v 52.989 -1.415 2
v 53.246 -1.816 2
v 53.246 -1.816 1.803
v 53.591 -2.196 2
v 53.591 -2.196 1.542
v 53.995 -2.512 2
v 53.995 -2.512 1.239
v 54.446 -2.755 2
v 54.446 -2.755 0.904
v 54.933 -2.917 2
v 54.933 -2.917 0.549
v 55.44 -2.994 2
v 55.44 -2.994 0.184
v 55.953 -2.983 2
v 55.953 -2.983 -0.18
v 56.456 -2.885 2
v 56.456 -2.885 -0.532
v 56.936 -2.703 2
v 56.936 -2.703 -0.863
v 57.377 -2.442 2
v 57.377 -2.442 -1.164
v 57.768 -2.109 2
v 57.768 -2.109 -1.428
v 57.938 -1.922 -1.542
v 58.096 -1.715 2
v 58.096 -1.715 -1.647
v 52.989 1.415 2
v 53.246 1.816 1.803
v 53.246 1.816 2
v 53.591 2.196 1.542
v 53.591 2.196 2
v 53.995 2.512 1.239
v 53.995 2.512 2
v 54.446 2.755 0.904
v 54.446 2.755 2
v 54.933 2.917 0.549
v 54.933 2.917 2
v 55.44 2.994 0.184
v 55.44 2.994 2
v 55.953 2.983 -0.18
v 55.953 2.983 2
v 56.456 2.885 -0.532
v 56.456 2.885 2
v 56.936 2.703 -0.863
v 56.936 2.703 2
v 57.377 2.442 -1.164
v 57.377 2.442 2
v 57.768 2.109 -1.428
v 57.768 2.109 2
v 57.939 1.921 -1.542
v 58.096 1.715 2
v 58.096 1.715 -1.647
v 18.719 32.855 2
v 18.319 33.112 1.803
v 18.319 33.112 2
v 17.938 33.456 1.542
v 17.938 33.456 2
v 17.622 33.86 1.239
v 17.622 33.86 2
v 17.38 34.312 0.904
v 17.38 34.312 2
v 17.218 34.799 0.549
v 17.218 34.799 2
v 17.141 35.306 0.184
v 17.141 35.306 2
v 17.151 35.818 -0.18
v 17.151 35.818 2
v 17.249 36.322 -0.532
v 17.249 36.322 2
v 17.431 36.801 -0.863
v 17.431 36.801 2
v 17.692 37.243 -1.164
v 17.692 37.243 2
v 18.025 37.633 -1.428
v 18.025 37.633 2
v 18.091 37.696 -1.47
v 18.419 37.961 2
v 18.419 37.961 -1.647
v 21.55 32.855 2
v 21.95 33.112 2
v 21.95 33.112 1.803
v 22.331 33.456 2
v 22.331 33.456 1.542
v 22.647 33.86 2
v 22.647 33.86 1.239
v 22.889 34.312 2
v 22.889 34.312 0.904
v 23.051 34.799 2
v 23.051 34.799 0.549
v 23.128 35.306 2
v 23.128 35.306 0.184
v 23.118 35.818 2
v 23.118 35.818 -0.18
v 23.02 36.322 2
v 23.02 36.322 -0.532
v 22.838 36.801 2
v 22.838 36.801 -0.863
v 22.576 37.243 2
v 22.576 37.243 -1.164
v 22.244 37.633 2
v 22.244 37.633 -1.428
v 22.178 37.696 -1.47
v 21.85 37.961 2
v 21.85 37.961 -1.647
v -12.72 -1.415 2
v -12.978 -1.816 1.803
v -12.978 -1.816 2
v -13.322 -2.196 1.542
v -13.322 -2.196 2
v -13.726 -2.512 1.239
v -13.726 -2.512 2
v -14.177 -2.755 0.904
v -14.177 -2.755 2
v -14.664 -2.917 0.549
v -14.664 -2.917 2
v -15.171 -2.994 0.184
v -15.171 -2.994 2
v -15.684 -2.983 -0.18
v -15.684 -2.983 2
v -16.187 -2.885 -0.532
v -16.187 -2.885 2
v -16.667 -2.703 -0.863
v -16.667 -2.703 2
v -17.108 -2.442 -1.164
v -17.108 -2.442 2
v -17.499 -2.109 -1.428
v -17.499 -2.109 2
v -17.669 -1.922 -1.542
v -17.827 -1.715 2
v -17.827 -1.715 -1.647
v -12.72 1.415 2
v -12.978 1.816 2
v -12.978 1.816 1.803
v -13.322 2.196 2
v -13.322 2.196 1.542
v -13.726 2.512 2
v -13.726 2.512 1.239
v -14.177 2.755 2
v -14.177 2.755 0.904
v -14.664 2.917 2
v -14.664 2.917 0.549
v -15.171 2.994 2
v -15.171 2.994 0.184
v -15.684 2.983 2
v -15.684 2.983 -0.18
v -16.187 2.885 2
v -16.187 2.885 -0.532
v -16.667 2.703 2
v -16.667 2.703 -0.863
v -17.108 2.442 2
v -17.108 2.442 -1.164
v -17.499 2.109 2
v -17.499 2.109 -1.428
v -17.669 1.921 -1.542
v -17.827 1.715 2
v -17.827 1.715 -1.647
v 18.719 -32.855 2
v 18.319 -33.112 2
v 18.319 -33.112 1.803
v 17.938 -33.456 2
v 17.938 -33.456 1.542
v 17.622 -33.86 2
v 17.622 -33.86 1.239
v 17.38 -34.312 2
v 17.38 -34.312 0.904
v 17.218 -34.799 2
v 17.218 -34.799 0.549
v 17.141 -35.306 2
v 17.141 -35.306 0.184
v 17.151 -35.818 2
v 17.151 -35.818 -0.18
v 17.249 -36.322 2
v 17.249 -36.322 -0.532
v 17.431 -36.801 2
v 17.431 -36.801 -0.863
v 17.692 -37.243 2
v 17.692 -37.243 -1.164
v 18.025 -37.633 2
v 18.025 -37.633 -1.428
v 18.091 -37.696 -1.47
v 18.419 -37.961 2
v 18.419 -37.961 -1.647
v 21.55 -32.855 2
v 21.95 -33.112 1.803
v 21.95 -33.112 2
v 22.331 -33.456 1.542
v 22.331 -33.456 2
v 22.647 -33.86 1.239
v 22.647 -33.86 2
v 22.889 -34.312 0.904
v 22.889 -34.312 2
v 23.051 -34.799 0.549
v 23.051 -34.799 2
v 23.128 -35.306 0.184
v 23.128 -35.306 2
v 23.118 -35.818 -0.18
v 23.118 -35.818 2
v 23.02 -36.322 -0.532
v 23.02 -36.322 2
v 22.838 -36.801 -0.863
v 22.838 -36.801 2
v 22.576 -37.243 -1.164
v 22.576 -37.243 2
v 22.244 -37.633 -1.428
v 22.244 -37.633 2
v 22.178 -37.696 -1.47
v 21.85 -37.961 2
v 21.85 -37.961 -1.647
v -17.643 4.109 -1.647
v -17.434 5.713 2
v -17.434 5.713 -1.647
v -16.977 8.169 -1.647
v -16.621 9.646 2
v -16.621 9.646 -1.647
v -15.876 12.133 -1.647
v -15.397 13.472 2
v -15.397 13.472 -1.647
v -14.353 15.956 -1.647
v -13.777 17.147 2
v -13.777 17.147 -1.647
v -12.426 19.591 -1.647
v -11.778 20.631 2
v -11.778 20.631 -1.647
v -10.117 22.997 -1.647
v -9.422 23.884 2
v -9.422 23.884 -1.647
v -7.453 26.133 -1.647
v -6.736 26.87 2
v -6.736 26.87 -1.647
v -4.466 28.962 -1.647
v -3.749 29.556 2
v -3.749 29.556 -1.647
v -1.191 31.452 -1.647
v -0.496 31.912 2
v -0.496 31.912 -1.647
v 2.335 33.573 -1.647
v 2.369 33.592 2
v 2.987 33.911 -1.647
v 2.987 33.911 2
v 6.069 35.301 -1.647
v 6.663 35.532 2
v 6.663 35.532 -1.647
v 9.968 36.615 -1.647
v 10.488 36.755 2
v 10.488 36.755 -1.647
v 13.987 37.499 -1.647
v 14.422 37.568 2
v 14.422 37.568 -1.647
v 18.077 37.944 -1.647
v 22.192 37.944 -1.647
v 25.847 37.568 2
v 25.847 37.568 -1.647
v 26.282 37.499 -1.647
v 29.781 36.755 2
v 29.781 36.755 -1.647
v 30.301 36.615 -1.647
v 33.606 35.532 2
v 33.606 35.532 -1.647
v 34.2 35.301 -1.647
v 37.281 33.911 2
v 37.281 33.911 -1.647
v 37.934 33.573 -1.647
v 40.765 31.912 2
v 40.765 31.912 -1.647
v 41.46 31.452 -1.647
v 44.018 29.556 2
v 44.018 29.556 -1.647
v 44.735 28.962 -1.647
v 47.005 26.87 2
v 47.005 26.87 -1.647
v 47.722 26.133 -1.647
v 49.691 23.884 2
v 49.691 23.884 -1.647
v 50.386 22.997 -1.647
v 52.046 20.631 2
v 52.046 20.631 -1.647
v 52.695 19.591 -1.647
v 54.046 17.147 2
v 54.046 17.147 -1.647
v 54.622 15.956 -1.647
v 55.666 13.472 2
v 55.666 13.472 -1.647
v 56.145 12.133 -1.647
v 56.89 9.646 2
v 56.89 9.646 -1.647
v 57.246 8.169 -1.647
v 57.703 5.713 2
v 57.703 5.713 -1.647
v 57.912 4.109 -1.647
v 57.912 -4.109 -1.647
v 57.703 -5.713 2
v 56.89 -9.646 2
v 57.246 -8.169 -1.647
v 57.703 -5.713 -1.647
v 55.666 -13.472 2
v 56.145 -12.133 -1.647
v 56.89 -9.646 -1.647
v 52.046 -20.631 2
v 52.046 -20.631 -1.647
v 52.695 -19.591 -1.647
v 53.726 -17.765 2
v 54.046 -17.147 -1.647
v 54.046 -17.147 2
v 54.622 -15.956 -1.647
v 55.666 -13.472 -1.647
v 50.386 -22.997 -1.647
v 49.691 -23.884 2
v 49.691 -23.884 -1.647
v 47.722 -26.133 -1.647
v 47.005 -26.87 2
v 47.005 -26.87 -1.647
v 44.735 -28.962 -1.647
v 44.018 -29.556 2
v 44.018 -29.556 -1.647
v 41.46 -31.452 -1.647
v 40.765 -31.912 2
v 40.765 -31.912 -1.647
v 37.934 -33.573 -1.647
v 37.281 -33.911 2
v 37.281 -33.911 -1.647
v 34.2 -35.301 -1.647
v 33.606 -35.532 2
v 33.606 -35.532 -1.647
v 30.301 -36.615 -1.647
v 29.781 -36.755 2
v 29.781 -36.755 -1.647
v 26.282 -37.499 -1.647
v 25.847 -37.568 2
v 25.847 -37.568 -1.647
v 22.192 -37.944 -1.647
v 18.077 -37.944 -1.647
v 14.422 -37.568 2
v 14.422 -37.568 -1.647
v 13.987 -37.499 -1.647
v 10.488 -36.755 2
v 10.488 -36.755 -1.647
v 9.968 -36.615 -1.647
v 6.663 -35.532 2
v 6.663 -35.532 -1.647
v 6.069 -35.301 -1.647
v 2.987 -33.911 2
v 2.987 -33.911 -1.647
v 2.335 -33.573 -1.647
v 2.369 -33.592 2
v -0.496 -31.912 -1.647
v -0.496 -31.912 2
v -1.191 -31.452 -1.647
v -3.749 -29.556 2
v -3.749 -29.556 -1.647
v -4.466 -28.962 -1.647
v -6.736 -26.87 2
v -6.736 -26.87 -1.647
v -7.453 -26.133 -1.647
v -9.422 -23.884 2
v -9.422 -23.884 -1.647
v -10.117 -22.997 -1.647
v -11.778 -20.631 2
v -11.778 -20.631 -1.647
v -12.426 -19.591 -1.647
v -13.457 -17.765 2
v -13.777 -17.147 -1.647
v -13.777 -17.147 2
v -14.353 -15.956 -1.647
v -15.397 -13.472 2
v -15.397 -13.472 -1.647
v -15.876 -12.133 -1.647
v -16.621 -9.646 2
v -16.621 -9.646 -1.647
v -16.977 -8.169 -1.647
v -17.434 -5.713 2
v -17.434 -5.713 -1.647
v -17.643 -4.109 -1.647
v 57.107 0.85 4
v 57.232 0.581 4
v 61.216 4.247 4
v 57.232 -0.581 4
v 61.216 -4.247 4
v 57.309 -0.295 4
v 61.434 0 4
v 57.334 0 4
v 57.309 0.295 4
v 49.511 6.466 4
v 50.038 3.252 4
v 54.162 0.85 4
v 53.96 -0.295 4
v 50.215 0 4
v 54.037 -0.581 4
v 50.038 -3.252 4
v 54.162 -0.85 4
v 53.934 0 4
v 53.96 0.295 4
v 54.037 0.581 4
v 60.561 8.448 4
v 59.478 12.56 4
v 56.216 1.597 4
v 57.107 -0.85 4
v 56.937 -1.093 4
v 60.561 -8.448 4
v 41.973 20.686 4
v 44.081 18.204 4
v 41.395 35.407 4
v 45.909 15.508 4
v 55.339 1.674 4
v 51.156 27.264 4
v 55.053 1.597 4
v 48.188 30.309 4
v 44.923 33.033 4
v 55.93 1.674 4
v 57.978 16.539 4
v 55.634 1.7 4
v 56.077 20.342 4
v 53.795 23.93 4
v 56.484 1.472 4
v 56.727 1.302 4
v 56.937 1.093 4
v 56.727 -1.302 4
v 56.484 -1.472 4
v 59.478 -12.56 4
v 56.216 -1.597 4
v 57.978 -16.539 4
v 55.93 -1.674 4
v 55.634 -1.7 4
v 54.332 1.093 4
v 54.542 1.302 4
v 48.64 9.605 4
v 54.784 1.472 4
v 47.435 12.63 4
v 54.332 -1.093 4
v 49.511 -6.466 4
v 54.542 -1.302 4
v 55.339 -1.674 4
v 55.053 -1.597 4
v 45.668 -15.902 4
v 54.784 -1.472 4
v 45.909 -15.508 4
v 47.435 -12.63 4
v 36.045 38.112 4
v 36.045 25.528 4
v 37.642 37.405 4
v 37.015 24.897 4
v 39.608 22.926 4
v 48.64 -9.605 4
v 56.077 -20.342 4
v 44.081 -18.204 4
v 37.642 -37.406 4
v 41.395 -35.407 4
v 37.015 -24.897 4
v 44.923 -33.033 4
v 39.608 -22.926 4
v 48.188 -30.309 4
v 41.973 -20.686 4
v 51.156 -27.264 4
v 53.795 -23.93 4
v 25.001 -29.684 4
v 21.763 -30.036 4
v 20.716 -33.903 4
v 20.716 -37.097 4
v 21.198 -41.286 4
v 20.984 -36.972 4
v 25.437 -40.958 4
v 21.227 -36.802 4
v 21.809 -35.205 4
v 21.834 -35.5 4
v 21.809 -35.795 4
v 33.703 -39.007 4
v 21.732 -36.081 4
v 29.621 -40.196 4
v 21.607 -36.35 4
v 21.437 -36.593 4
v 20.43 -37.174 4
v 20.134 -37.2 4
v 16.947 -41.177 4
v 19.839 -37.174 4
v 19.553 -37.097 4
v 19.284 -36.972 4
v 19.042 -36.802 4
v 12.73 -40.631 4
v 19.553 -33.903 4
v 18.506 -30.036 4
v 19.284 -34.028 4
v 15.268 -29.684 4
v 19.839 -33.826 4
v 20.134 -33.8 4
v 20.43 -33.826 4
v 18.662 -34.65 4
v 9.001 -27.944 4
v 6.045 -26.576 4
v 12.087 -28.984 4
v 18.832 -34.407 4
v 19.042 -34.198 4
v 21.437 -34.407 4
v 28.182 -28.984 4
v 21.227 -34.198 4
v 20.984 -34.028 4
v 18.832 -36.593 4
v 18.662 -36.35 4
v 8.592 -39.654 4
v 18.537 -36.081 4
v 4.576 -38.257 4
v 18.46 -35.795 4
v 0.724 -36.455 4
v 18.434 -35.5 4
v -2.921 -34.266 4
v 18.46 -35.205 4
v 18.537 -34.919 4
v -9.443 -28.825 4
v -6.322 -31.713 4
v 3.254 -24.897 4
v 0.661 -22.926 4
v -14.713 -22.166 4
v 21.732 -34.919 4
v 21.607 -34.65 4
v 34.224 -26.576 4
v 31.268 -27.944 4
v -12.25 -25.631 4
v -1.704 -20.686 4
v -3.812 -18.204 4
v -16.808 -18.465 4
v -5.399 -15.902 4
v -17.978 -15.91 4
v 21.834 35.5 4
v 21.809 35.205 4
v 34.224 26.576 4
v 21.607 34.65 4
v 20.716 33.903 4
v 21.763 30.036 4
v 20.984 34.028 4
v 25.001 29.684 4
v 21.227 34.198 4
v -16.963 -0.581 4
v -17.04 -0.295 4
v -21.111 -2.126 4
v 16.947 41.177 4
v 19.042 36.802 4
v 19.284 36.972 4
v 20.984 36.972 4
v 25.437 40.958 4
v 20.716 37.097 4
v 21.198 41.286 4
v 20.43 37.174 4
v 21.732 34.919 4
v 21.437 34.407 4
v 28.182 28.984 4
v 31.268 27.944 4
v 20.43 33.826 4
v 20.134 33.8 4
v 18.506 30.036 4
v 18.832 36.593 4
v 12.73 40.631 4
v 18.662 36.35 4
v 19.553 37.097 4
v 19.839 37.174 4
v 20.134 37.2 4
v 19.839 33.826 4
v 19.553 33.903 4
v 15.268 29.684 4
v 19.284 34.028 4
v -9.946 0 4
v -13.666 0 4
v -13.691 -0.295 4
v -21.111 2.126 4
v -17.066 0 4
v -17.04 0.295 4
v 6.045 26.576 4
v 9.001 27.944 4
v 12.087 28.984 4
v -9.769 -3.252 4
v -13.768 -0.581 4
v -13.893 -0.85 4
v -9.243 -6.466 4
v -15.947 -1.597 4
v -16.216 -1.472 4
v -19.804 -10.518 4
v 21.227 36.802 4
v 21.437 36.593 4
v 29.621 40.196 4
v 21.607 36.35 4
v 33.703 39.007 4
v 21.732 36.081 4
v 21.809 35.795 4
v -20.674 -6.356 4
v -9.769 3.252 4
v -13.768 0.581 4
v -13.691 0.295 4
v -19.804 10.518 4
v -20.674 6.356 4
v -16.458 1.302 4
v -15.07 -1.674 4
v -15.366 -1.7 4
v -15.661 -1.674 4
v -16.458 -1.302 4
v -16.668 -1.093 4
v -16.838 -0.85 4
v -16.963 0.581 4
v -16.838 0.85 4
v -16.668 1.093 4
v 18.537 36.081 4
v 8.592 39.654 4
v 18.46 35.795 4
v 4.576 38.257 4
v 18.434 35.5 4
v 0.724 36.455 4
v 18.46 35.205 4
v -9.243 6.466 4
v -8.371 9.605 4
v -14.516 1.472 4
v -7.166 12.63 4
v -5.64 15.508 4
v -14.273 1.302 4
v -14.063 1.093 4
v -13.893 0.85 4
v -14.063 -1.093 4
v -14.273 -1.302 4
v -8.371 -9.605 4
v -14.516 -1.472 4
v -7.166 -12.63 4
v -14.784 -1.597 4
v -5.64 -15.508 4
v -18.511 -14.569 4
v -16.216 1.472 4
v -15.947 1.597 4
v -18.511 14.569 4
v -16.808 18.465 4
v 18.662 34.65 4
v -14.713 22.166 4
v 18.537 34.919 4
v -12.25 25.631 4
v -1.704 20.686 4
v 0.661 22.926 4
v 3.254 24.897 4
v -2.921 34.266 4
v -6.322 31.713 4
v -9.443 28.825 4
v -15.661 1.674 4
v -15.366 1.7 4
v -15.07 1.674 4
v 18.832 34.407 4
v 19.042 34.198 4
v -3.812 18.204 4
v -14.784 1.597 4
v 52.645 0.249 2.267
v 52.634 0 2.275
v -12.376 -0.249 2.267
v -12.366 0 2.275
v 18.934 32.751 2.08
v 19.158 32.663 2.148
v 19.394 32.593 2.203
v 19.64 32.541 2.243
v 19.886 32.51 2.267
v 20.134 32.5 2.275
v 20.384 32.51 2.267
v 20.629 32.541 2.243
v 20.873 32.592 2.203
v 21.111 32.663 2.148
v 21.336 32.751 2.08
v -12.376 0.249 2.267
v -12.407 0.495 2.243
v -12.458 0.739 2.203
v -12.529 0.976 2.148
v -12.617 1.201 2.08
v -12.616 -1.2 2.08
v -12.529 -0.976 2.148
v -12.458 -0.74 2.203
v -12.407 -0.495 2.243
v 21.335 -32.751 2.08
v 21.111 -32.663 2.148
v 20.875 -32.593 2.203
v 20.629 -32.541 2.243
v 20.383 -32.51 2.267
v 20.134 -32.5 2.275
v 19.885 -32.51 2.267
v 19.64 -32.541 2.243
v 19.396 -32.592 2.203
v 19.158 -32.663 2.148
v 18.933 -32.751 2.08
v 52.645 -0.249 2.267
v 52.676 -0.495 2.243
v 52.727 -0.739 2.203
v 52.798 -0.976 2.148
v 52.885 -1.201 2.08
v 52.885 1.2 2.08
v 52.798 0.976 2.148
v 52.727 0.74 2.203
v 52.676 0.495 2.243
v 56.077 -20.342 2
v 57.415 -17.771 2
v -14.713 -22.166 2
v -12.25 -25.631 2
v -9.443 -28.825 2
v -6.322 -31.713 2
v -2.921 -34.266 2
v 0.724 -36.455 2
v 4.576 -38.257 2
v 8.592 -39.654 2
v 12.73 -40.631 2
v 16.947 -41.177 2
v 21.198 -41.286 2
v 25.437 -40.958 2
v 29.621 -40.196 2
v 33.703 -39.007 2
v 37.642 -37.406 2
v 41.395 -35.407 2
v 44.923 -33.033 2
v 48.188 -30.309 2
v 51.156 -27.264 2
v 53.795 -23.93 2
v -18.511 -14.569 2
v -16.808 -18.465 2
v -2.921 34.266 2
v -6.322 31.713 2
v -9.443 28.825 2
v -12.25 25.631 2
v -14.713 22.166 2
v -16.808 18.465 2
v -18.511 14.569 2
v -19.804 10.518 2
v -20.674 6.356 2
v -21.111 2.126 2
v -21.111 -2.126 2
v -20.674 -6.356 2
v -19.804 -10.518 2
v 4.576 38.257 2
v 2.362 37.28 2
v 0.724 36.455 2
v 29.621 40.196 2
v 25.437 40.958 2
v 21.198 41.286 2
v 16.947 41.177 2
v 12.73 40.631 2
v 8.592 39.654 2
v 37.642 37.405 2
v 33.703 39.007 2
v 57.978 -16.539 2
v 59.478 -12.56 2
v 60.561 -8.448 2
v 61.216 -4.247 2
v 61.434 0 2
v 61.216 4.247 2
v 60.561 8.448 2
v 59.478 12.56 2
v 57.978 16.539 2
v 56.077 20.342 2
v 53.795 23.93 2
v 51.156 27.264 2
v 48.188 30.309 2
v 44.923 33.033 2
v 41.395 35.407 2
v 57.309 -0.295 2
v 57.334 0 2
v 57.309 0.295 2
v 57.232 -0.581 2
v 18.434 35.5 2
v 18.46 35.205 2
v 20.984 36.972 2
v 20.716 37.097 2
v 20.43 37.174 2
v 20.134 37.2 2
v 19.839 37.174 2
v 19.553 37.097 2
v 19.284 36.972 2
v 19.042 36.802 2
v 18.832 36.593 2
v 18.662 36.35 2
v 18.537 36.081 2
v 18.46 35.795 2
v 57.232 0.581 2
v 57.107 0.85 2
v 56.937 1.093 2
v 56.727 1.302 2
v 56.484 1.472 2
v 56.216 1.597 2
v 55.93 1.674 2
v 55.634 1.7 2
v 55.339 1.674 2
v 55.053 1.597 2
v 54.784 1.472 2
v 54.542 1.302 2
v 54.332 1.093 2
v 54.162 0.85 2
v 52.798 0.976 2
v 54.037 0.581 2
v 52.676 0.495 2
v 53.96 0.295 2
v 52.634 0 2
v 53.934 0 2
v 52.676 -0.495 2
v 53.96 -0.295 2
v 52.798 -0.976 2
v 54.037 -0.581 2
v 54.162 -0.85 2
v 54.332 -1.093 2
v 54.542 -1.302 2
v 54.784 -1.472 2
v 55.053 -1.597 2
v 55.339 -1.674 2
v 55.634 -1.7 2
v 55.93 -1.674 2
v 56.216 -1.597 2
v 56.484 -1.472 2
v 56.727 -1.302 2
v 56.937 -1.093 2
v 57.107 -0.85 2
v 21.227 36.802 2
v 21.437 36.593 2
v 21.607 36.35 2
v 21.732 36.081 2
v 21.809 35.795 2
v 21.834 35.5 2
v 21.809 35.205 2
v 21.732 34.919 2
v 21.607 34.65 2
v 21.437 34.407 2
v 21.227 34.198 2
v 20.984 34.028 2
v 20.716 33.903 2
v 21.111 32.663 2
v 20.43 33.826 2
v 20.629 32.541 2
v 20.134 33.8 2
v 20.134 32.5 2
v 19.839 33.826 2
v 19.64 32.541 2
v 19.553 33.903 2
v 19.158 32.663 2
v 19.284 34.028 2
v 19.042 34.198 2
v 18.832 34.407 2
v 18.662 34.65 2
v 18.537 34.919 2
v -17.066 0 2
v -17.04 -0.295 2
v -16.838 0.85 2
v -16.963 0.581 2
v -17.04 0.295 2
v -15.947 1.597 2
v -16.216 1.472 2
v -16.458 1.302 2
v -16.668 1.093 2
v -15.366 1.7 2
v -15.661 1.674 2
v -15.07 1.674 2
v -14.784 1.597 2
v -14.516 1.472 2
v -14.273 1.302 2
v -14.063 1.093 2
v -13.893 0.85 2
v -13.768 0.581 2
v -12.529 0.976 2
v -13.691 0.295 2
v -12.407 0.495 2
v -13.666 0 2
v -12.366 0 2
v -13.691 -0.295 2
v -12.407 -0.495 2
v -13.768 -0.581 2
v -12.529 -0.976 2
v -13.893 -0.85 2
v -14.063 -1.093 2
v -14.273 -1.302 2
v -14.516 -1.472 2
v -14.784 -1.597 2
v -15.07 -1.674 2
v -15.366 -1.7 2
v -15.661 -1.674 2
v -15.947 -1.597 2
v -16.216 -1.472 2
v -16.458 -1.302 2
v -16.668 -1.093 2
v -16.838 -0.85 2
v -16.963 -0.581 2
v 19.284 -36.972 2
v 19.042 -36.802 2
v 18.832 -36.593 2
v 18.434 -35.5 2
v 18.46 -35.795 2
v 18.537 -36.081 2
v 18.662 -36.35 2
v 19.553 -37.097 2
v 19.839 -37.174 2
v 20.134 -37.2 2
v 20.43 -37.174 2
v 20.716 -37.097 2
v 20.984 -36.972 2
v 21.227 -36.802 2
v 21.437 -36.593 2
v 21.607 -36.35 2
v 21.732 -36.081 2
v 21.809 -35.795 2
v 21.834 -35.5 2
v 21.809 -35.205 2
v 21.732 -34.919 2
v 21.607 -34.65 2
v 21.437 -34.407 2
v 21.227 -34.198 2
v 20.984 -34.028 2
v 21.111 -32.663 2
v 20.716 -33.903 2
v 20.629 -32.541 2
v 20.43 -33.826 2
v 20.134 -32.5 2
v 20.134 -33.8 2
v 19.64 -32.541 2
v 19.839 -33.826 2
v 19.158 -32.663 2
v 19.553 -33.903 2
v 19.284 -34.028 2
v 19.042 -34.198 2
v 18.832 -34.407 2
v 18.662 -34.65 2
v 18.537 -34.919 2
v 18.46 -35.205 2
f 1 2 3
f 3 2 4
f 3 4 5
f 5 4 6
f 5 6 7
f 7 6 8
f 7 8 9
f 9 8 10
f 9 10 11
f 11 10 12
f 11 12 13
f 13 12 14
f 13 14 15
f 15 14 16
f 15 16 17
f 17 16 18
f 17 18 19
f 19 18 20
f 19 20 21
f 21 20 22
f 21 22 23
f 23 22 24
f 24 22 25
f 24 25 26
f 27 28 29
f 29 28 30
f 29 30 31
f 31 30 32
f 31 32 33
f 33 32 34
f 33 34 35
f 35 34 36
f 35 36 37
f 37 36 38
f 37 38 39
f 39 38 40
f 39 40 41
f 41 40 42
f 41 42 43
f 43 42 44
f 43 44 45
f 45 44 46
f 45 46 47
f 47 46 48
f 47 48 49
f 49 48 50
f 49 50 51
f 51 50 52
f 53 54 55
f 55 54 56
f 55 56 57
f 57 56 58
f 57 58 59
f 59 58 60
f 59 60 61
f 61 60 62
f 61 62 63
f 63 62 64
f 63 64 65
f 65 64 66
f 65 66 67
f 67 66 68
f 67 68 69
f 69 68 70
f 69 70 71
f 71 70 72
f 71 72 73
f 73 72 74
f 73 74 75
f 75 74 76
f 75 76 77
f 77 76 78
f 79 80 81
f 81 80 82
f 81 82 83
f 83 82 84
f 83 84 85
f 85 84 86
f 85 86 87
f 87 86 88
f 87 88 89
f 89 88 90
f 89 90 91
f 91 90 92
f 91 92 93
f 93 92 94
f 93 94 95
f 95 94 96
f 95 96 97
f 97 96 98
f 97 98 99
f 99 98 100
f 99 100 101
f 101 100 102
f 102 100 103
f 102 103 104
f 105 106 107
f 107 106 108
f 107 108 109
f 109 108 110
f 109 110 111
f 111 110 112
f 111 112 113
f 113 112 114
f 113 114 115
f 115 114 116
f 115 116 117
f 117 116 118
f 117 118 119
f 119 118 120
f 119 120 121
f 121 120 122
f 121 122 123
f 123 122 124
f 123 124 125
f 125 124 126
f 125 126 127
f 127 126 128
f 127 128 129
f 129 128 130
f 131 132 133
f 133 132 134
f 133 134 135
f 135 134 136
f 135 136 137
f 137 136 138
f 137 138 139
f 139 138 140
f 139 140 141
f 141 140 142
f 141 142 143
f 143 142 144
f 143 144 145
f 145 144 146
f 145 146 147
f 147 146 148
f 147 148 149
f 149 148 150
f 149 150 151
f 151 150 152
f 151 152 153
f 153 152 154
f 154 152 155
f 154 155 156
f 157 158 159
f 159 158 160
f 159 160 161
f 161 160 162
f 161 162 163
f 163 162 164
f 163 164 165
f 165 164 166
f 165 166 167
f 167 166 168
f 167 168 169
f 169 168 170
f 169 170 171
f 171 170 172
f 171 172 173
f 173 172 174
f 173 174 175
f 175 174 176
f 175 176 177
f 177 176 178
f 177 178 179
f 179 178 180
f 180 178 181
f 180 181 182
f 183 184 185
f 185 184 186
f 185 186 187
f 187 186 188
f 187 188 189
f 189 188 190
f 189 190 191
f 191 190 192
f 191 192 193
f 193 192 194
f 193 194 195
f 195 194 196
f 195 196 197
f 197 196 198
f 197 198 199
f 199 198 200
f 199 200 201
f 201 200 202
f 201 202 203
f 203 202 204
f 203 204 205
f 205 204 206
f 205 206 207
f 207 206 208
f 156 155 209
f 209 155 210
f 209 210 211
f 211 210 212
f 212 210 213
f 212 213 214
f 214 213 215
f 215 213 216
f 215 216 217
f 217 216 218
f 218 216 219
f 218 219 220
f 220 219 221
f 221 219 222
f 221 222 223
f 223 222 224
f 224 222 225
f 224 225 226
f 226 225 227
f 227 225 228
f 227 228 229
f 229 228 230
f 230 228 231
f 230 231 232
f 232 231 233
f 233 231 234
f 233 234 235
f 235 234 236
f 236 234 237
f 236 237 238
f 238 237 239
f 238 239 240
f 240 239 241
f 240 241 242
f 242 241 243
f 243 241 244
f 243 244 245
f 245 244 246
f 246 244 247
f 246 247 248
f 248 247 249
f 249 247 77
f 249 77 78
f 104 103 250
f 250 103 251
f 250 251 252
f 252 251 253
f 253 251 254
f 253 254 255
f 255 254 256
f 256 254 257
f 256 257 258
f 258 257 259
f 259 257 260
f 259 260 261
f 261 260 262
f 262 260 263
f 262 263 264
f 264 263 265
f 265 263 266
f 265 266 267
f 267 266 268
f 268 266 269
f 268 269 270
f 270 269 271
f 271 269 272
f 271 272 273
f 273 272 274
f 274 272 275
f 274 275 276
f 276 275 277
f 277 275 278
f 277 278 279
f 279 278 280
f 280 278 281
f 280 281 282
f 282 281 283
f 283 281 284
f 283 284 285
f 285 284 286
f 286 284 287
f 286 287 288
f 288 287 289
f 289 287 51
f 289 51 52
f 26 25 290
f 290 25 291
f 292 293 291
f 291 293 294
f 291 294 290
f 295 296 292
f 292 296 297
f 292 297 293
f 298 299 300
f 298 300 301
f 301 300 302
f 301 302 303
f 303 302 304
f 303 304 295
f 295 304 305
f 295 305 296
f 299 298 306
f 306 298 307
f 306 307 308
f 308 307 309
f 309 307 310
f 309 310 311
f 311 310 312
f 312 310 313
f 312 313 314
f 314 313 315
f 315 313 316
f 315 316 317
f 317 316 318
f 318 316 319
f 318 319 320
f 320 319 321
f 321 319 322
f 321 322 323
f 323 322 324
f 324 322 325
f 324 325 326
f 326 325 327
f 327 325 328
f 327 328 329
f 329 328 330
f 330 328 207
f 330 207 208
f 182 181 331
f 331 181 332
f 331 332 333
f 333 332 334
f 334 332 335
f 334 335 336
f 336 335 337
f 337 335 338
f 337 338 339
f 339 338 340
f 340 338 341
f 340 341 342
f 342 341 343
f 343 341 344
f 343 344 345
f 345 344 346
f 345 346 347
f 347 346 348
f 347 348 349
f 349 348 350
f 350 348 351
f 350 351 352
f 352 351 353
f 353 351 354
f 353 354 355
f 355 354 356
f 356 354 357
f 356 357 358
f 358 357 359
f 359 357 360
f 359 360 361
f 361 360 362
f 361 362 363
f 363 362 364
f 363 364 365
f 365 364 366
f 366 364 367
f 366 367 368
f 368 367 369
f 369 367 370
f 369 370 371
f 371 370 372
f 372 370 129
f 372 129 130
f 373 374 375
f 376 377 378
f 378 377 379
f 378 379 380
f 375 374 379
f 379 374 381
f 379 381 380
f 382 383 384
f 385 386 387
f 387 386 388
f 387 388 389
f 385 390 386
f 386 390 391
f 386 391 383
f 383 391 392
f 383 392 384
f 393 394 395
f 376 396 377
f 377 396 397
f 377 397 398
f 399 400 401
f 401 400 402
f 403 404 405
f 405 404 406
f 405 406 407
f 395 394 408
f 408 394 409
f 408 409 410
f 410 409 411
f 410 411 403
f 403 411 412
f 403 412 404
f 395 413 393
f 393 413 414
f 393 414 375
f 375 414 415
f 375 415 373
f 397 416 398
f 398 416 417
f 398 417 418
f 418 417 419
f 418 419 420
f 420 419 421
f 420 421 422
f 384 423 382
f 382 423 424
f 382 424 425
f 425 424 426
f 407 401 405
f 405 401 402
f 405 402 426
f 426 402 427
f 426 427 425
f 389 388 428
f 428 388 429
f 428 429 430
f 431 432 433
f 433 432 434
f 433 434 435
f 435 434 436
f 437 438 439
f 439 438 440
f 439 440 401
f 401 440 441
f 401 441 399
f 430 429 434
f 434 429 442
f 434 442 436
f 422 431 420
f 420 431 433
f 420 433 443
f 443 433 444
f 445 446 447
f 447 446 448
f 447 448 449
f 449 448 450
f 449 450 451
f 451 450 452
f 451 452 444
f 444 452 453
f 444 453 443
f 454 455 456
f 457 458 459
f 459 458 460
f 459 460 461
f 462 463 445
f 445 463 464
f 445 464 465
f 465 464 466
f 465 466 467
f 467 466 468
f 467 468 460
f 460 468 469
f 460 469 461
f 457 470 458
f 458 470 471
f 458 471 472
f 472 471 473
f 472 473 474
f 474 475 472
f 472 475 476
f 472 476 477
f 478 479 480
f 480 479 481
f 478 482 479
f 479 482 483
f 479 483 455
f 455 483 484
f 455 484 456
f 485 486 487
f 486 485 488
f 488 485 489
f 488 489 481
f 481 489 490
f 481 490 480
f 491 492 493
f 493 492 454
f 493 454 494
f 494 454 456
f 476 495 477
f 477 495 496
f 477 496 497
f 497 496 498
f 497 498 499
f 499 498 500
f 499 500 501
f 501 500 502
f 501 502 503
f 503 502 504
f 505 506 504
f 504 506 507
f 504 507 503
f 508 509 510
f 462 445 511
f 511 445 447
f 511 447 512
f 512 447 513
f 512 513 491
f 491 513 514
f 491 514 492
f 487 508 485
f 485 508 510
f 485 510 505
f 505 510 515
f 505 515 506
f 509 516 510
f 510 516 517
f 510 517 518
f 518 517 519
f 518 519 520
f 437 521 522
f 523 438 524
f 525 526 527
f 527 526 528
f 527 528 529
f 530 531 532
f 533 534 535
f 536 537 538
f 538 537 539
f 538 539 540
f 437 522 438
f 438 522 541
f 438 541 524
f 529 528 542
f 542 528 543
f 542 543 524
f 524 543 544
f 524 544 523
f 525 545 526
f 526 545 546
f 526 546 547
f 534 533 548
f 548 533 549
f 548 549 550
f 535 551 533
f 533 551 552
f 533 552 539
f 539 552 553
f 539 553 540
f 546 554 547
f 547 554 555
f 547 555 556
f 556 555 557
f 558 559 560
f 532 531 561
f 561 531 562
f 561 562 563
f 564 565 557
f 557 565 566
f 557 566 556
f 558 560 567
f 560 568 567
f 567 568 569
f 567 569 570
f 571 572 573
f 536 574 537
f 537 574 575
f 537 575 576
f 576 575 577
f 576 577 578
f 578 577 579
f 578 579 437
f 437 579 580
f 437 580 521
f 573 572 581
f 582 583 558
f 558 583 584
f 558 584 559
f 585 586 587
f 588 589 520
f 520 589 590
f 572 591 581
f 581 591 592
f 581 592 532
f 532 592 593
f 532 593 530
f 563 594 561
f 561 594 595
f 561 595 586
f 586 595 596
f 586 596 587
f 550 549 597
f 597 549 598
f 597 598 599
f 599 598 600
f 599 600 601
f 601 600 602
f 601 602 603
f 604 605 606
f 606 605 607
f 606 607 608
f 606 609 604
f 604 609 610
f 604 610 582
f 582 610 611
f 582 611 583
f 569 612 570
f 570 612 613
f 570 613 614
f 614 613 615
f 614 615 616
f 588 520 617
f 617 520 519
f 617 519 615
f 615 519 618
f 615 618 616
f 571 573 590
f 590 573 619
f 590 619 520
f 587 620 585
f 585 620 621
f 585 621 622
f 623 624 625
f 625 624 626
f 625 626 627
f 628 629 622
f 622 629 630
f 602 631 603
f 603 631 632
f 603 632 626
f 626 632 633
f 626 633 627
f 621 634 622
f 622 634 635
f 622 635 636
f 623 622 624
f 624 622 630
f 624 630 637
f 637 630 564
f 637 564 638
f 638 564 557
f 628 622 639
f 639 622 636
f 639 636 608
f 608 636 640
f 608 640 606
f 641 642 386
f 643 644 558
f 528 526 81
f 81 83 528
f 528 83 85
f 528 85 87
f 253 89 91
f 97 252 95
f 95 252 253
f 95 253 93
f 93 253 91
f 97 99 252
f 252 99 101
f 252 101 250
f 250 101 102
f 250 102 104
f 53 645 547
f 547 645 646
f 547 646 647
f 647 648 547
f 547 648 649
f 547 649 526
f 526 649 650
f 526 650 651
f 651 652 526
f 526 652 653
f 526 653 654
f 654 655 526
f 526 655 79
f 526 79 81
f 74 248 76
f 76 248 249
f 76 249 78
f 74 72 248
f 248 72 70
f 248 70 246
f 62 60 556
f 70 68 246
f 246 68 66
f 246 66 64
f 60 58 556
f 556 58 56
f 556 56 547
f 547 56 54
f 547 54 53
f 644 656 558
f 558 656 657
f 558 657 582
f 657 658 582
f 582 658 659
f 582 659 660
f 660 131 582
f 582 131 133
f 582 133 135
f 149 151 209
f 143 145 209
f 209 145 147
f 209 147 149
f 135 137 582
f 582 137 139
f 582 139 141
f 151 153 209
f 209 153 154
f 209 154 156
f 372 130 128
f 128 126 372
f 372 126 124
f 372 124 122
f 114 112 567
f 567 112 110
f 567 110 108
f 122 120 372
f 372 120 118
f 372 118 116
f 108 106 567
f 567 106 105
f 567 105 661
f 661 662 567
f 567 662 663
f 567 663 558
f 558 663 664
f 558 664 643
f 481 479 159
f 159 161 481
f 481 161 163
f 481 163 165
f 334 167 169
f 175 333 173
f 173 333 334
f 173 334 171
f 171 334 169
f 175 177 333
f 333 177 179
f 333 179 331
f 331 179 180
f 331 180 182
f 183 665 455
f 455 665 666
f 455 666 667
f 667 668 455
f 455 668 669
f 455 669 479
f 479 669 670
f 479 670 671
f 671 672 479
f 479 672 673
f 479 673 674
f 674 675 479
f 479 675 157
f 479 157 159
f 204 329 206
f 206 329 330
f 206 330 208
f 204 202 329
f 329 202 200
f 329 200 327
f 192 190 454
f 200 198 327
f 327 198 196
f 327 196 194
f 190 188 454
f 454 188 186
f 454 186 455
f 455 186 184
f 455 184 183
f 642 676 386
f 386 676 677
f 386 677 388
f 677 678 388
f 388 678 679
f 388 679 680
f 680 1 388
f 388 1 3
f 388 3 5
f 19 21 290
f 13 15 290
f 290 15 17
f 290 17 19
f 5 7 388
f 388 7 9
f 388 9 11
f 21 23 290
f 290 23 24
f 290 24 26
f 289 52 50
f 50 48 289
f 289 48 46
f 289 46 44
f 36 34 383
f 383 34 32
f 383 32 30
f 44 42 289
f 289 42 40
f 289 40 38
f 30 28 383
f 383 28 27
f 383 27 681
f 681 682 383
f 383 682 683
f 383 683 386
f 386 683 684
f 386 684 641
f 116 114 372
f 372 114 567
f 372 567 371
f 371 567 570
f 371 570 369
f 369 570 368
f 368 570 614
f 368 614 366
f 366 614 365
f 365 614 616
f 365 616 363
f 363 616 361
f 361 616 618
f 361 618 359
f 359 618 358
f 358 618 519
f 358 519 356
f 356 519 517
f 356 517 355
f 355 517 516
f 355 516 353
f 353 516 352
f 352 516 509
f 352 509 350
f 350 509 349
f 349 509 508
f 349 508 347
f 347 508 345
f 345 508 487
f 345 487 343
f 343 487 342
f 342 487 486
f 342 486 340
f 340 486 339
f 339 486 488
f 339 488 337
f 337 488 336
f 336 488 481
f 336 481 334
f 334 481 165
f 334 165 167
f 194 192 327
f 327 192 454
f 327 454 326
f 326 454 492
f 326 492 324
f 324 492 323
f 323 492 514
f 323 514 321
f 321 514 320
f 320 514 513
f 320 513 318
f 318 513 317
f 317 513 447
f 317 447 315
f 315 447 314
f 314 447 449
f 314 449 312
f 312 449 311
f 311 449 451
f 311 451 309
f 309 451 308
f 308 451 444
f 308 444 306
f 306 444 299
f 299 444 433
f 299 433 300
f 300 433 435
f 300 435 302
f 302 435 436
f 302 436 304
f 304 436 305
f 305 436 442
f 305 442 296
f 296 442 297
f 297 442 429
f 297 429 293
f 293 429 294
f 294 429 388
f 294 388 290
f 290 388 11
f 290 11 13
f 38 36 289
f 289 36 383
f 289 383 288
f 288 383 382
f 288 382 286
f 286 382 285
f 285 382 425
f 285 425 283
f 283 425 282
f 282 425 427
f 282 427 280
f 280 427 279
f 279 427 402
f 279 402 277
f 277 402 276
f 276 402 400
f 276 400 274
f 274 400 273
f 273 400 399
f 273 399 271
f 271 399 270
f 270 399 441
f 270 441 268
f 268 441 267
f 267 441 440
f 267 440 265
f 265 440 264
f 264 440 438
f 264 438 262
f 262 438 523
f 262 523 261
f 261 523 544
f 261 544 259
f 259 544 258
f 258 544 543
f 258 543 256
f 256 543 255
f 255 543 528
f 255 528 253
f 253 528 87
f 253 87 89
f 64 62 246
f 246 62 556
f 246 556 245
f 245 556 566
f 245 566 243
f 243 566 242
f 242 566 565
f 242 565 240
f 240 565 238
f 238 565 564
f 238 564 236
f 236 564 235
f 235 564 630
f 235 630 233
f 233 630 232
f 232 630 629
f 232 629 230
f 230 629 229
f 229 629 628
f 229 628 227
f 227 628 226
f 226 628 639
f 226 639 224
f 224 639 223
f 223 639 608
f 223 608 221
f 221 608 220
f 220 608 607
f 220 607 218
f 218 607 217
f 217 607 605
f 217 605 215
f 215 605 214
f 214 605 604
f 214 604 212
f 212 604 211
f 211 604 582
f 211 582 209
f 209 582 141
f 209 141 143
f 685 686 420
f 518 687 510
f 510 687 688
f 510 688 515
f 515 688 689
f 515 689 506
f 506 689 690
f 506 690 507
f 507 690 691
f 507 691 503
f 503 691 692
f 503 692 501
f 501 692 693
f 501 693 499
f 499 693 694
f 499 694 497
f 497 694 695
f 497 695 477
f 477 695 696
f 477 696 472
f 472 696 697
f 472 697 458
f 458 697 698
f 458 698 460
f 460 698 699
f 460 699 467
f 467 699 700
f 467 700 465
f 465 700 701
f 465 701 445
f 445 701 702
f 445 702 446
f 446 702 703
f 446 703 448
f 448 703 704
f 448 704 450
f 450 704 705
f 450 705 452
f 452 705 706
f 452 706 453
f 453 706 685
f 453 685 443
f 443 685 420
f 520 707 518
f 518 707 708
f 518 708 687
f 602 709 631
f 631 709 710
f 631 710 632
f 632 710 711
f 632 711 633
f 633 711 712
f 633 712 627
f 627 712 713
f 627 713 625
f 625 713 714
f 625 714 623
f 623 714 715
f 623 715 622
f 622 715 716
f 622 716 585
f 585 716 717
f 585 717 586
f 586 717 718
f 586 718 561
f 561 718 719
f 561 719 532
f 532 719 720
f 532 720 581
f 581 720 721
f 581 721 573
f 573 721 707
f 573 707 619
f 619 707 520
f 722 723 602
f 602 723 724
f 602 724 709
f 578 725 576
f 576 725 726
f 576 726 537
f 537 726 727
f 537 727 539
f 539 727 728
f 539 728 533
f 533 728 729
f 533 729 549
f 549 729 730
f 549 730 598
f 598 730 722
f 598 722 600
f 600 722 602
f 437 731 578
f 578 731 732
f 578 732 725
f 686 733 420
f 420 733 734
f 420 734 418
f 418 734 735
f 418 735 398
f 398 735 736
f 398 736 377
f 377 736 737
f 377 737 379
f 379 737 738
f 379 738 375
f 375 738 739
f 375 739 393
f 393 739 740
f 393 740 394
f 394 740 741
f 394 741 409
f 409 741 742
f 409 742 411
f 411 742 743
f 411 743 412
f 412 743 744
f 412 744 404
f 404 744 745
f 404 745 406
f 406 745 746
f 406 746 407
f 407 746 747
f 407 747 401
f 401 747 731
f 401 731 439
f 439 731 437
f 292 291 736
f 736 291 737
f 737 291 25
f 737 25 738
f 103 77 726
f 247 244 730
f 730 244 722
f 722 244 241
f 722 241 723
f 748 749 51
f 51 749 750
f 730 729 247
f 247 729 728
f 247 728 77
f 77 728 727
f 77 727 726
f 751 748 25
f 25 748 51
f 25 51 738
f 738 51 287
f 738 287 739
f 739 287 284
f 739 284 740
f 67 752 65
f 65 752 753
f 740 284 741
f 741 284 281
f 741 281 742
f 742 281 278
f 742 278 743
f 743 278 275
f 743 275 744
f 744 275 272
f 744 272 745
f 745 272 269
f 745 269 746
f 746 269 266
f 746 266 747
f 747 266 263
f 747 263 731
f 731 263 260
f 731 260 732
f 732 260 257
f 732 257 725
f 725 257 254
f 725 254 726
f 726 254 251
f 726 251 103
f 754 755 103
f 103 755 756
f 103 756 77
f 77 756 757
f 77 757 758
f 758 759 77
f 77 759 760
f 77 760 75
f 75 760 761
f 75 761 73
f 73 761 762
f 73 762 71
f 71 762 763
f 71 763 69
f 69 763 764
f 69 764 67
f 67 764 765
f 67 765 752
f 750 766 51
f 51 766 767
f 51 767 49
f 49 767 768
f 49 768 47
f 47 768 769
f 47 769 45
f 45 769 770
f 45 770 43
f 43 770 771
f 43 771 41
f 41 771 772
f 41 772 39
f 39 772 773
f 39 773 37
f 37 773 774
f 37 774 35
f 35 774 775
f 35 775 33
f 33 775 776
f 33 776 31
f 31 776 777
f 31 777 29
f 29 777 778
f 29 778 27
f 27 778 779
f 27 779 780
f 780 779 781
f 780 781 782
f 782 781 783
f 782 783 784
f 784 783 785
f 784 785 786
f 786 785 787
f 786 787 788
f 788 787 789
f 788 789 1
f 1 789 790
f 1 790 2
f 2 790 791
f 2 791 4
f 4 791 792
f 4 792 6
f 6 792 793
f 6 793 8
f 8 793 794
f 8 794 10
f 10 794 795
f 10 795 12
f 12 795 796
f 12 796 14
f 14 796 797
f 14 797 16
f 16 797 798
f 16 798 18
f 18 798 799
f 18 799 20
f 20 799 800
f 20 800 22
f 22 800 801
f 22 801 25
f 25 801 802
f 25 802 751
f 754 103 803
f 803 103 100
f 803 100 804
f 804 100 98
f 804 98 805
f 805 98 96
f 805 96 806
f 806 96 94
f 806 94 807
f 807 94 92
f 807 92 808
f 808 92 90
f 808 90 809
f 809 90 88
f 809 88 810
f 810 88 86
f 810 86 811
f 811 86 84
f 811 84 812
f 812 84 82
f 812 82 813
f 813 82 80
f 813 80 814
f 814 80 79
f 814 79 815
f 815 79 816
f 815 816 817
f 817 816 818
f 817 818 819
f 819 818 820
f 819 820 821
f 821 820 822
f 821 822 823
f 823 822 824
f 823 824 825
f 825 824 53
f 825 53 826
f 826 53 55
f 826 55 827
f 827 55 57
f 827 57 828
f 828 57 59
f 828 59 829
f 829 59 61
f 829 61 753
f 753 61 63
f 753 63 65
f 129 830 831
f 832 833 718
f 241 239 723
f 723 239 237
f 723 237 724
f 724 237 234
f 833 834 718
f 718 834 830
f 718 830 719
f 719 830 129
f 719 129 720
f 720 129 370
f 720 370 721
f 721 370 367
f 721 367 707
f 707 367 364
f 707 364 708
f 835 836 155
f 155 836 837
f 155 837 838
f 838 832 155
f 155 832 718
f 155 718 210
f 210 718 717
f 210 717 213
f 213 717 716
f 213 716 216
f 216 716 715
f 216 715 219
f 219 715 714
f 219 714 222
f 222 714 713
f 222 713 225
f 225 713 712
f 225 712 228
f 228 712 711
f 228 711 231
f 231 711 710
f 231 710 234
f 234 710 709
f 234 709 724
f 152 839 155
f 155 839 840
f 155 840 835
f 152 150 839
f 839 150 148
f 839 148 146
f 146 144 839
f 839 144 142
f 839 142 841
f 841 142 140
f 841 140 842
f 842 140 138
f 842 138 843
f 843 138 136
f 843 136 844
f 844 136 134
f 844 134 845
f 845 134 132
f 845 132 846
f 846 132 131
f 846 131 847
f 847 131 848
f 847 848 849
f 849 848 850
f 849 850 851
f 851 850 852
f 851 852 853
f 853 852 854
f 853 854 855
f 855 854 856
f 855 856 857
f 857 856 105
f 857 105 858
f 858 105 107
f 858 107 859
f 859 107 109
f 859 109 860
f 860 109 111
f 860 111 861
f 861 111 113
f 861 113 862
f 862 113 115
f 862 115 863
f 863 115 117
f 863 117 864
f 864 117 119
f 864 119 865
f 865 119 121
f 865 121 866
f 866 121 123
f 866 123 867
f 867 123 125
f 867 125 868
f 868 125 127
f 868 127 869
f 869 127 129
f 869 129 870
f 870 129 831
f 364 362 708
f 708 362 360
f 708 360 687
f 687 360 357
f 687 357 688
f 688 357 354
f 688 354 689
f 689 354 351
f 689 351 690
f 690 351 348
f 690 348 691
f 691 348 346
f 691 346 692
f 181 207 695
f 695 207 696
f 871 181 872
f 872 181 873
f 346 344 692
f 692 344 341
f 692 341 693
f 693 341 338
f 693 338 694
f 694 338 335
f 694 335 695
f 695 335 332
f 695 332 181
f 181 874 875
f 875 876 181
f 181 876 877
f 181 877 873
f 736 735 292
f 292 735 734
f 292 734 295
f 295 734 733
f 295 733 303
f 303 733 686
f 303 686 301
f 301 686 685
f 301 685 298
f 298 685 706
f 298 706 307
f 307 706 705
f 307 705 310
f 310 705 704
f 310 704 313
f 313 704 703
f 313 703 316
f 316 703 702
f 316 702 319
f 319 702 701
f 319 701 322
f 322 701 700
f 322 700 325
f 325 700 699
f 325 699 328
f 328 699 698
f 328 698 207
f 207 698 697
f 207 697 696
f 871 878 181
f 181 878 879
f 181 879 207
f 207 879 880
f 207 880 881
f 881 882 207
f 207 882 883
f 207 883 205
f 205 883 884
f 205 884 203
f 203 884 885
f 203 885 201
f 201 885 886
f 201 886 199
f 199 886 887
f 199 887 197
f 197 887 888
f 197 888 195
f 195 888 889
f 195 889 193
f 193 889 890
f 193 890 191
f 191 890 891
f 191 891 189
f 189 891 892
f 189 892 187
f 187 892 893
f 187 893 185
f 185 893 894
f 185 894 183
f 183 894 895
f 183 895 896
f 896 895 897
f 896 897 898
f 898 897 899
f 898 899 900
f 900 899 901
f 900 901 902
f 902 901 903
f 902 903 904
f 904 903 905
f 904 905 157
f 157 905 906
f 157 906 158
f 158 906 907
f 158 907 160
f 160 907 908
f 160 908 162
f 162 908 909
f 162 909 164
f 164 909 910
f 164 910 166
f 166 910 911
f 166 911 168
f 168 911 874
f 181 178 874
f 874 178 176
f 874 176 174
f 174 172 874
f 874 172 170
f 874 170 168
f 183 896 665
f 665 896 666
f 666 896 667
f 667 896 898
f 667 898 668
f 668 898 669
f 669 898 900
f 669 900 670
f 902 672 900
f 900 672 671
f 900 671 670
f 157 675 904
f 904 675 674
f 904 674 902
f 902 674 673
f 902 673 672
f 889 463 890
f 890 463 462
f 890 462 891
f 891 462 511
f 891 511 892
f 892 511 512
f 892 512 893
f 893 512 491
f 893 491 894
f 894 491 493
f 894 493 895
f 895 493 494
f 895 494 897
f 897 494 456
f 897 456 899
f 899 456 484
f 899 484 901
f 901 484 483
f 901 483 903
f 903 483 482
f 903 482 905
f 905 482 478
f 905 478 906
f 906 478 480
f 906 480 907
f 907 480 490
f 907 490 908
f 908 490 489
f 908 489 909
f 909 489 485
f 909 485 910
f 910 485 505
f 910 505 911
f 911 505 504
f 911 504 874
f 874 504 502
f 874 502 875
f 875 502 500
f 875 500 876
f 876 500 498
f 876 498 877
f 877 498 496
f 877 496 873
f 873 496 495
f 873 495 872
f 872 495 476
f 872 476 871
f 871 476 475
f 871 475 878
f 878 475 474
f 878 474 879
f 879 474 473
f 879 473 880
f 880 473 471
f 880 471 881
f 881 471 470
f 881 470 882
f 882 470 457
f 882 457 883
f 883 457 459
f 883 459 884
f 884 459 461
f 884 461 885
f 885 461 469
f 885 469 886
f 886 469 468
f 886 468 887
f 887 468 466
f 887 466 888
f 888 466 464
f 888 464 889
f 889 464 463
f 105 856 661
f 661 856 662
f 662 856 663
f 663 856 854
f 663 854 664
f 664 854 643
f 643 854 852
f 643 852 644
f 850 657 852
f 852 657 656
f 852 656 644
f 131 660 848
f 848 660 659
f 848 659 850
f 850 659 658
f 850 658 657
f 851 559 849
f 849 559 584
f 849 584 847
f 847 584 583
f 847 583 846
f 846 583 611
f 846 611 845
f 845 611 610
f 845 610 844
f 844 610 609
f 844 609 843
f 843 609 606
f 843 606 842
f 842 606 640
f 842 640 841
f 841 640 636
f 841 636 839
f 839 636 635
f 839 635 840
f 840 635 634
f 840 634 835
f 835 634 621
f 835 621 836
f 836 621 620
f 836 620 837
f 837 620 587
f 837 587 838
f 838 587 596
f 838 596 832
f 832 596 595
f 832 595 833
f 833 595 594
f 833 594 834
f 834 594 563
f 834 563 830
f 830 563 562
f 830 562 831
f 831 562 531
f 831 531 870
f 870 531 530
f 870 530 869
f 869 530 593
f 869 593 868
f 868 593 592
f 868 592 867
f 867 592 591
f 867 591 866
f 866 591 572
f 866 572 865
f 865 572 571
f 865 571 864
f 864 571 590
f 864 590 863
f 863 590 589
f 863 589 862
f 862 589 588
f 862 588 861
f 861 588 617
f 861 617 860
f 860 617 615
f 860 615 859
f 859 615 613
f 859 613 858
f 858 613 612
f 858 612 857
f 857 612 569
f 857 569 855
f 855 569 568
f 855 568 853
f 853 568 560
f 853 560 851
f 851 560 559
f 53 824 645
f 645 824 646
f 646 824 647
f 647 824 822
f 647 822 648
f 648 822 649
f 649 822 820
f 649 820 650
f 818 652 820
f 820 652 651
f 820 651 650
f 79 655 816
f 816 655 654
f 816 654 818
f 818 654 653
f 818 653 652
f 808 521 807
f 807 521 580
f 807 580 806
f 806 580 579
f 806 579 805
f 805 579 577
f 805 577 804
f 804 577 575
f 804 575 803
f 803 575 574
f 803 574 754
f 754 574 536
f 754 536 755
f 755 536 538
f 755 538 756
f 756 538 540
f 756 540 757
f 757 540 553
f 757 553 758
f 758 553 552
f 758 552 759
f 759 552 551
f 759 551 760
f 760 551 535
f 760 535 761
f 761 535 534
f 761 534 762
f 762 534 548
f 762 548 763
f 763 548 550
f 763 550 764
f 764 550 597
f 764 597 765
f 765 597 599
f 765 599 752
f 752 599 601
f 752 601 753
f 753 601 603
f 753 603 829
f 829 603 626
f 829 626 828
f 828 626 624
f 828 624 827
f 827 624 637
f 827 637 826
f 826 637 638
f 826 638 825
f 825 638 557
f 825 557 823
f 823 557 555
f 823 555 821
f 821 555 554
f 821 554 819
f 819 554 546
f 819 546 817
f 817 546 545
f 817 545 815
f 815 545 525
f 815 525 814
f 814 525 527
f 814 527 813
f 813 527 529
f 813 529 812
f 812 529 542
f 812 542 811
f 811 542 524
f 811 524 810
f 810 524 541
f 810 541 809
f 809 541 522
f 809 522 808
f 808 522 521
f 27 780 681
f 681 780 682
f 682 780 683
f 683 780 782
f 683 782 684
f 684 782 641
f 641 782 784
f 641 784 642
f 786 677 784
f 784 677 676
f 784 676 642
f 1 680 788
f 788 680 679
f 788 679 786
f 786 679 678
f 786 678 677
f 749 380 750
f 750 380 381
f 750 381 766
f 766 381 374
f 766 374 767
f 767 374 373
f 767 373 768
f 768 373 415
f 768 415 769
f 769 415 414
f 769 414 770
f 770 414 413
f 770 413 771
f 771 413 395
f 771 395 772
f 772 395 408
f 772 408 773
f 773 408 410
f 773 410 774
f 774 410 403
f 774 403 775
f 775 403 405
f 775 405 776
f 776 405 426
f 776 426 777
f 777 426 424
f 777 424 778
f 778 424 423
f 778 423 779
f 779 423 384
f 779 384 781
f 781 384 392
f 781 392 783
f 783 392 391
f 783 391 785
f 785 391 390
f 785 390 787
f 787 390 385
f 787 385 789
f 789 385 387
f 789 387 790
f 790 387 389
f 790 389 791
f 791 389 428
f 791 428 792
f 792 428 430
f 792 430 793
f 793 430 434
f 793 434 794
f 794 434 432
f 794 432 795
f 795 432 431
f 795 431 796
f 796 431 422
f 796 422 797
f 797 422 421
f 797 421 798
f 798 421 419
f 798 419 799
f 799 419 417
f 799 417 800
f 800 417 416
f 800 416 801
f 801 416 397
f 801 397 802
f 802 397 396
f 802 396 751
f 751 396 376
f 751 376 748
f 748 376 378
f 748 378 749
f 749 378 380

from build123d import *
from build123d.topology import SkipClean

# Parameters (mm, degrees)
SKETCH3_R           = 3
CUT_EXTRUDE1_DEPTH  = 75.457245764
SKETCH4_R           = 41.3
CUT_EXTRUDE2_DEPTH  = 10
SKETCH4_3_R         = 41.3
BOSS_EXTRUDE1_DEPTH = 2
SKETCH5_R           = 3
SKETCH5_R_2         = 1.7
BOSS_EXTRUDE2_DEPTH = 2


with BuildPart() as part:
    # Sketch2 → Revolve1 (revolve)
    with BuildSketch(Plane(origin=(0, 0, 0), x_dir=(1, 0, 0), z_dir=(0, 1, 0))):
        Polygon((-21.165551628, 4), (-21.165551628, -4), (-9.945763659, -4), align=None)
    revolve(axis=Axis((20.134448372, 0, 4), (0, 0, -1)))

    # Sketch3 → Cut-Extrude1 (cut, through all)
    with BuildSketch(Plane.XY.offset(4)):
        with Locations((20.134448372, 35.5)):
            Circle(SKETCH3_R)
        with Locations((-15.365551628, 0)):
            Circle(SKETCH3_R)
        with Locations((55.634448372, 0)):
            Circle(SKETCH3_R)
        with Locations((20.134448372, -35.5)):
            Circle(SKETCH3_R)
    extrude(amount=-CUT_EXTRUDE1_DEPTH, mode=Mode.SUBTRACT)

    # Sketch4 → Cut-Extrude2 (cut)
    with BuildSketch(Plane.XY.offset(4)):
        with Locations((20.134448372, 0)):
            Circle(SKETCH4_R)
        with BuildLine():
            ThreePointArc((21.849721462, 37.961267606), (47.004506057, 26.870057685), (58.095715978, 1.71527309))
            ThreePointArc((58.095715978, 1.71527309), (58.49659816, 0.898943041), (58.634448372, 0))
            ThreePointArc((58.634448372, 0), (58.49659816, -0.898943041), (58.095715978, -1.71527309))
            ThreePointArc((58.095715978, -1.71527309), (47.004506057, -26.870057685), (21.849721462, -37.961267606))
            ThreePointArc((21.849721462, -37.961267606), (20.134448372, -38.5), (18.419175282, -37.961267606))
            ThreePointArc((18.419175282, -37.961267606), (-6.735609313, -26.870057685), (-17.826819233, -1.71527309))
            ThreePointArc((-17.826819233, -1.71527309), (-18.365551628, 0), (-17.826819233, 1.71527309))
            ThreePointArc((-17.826819233, 1.71527309), (-6.735609313, 26.870057685), (18.419175282, 37.961267606))
            ThreePointArc((18.419175282, 37.961267606), (20.134448372, 38.5), (21.849721462, 37.961267606))
        make_face(mode=Mode.SUBTRACT)
    extrude(amount=-CUT_EXTRUDE2_DEPTH, mode=Mode.SUBTRACT)

    # Sketch4<3> → Boss-Extrude1 (add)
    with SkipClean():  # the faces are left unmerged after this step: merging them gives an invalid solid
        with BuildSketch(Plane.XY.offset(4)):
            with Locations((20.134448372, 0)):
                Circle(SKETCH4_3_R)
            with BuildLine():
                ThreePointArc((21.849721462, 37.961267606), (47.004506057, 26.870057685), (58.095715978, 1.71527309))
                ThreePointArc((58.095715978, 1.71527309), (58.49659816, 0.898943041), (58.634448372, 0))
                ThreePointArc((58.634448372, 0), (58.49659816, -0.898943041), (58.095715978, -1.71527309))
                ThreePointArc((58.095715978, -1.71527309), (47.004506057, -26.870057685), (21.849721462, -37.961267606))
                ThreePointArc((21.849721462, -37.961267606), (20.134448372, -38.5), (18.419175282, -37.961267606))
                ThreePointArc((18.419175282, -37.961267606), (-6.735609313, -26.870057685), (-17.826819233, -1.71527309))
                ThreePointArc((-17.826819233, -1.71527309), (-18.365551628, 0), (-17.826819233, 1.71527309))
                ThreePointArc((-17.826819233, 1.71527309), (-6.735609313, 26.870057685), (18.419175282, 37.961267606))
                ThreePointArc((18.419175282, 37.961267606), (20.134448372, 38.5), (21.849721462, 37.961267606))
            make_face(mode=Mode.SUBTRACT)
        extrude(amount=-BOSS_EXTRUDE1_DEPTH)

    # Sketch5 → Boss-Extrude2 (add)
    # profile 1 of 4: a face of its own
    with BuildSketch(Plane.XY.offset(4)):
        with Locations((20.134448372, -35.5)):
            Circle(SKETCH5_R)
        with Locations((20.134448372, -35.5)):
            Circle(SKETCH5_R_2, mode=Mode.SUBTRACT)
    # profile 2 of 4: a face of its own
    with BuildSketch(Plane.XY.offset(4)):
        with Locations((-15.365551628, 0)):
            Circle(SKETCH5_R)
        with Locations((-15.365551628, 0)):
            Circle(SKETCH5_R_2, mode=Mode.SUBTRACT)
    # profile 3 of 4: a face of its own
    with BuildSketch(Plane.XY.offset(4)):
        with Locations((20.134448372, 35.5)):
            Circle(SKETCH5_R)
        with Locations((20.134448372, 35.5)):
            Circle(SKETCH5_R_2, mode=Mode.SUBTRACT)
    # profile 4 of 4: a face of its own
    with BuildSketch(Plane.XY.offset(4)):
        with Locations((55.634448372, 0)):
            Circle(SKETCH5_R)
        with Locations((55.634448372, 0)):
            Circle(SKETCH5_R_2, mode=Mode.SUBTRACT)
    extrude(amount=-BOSS_EXTRUDE2_DEPTH)


solid = part.part
